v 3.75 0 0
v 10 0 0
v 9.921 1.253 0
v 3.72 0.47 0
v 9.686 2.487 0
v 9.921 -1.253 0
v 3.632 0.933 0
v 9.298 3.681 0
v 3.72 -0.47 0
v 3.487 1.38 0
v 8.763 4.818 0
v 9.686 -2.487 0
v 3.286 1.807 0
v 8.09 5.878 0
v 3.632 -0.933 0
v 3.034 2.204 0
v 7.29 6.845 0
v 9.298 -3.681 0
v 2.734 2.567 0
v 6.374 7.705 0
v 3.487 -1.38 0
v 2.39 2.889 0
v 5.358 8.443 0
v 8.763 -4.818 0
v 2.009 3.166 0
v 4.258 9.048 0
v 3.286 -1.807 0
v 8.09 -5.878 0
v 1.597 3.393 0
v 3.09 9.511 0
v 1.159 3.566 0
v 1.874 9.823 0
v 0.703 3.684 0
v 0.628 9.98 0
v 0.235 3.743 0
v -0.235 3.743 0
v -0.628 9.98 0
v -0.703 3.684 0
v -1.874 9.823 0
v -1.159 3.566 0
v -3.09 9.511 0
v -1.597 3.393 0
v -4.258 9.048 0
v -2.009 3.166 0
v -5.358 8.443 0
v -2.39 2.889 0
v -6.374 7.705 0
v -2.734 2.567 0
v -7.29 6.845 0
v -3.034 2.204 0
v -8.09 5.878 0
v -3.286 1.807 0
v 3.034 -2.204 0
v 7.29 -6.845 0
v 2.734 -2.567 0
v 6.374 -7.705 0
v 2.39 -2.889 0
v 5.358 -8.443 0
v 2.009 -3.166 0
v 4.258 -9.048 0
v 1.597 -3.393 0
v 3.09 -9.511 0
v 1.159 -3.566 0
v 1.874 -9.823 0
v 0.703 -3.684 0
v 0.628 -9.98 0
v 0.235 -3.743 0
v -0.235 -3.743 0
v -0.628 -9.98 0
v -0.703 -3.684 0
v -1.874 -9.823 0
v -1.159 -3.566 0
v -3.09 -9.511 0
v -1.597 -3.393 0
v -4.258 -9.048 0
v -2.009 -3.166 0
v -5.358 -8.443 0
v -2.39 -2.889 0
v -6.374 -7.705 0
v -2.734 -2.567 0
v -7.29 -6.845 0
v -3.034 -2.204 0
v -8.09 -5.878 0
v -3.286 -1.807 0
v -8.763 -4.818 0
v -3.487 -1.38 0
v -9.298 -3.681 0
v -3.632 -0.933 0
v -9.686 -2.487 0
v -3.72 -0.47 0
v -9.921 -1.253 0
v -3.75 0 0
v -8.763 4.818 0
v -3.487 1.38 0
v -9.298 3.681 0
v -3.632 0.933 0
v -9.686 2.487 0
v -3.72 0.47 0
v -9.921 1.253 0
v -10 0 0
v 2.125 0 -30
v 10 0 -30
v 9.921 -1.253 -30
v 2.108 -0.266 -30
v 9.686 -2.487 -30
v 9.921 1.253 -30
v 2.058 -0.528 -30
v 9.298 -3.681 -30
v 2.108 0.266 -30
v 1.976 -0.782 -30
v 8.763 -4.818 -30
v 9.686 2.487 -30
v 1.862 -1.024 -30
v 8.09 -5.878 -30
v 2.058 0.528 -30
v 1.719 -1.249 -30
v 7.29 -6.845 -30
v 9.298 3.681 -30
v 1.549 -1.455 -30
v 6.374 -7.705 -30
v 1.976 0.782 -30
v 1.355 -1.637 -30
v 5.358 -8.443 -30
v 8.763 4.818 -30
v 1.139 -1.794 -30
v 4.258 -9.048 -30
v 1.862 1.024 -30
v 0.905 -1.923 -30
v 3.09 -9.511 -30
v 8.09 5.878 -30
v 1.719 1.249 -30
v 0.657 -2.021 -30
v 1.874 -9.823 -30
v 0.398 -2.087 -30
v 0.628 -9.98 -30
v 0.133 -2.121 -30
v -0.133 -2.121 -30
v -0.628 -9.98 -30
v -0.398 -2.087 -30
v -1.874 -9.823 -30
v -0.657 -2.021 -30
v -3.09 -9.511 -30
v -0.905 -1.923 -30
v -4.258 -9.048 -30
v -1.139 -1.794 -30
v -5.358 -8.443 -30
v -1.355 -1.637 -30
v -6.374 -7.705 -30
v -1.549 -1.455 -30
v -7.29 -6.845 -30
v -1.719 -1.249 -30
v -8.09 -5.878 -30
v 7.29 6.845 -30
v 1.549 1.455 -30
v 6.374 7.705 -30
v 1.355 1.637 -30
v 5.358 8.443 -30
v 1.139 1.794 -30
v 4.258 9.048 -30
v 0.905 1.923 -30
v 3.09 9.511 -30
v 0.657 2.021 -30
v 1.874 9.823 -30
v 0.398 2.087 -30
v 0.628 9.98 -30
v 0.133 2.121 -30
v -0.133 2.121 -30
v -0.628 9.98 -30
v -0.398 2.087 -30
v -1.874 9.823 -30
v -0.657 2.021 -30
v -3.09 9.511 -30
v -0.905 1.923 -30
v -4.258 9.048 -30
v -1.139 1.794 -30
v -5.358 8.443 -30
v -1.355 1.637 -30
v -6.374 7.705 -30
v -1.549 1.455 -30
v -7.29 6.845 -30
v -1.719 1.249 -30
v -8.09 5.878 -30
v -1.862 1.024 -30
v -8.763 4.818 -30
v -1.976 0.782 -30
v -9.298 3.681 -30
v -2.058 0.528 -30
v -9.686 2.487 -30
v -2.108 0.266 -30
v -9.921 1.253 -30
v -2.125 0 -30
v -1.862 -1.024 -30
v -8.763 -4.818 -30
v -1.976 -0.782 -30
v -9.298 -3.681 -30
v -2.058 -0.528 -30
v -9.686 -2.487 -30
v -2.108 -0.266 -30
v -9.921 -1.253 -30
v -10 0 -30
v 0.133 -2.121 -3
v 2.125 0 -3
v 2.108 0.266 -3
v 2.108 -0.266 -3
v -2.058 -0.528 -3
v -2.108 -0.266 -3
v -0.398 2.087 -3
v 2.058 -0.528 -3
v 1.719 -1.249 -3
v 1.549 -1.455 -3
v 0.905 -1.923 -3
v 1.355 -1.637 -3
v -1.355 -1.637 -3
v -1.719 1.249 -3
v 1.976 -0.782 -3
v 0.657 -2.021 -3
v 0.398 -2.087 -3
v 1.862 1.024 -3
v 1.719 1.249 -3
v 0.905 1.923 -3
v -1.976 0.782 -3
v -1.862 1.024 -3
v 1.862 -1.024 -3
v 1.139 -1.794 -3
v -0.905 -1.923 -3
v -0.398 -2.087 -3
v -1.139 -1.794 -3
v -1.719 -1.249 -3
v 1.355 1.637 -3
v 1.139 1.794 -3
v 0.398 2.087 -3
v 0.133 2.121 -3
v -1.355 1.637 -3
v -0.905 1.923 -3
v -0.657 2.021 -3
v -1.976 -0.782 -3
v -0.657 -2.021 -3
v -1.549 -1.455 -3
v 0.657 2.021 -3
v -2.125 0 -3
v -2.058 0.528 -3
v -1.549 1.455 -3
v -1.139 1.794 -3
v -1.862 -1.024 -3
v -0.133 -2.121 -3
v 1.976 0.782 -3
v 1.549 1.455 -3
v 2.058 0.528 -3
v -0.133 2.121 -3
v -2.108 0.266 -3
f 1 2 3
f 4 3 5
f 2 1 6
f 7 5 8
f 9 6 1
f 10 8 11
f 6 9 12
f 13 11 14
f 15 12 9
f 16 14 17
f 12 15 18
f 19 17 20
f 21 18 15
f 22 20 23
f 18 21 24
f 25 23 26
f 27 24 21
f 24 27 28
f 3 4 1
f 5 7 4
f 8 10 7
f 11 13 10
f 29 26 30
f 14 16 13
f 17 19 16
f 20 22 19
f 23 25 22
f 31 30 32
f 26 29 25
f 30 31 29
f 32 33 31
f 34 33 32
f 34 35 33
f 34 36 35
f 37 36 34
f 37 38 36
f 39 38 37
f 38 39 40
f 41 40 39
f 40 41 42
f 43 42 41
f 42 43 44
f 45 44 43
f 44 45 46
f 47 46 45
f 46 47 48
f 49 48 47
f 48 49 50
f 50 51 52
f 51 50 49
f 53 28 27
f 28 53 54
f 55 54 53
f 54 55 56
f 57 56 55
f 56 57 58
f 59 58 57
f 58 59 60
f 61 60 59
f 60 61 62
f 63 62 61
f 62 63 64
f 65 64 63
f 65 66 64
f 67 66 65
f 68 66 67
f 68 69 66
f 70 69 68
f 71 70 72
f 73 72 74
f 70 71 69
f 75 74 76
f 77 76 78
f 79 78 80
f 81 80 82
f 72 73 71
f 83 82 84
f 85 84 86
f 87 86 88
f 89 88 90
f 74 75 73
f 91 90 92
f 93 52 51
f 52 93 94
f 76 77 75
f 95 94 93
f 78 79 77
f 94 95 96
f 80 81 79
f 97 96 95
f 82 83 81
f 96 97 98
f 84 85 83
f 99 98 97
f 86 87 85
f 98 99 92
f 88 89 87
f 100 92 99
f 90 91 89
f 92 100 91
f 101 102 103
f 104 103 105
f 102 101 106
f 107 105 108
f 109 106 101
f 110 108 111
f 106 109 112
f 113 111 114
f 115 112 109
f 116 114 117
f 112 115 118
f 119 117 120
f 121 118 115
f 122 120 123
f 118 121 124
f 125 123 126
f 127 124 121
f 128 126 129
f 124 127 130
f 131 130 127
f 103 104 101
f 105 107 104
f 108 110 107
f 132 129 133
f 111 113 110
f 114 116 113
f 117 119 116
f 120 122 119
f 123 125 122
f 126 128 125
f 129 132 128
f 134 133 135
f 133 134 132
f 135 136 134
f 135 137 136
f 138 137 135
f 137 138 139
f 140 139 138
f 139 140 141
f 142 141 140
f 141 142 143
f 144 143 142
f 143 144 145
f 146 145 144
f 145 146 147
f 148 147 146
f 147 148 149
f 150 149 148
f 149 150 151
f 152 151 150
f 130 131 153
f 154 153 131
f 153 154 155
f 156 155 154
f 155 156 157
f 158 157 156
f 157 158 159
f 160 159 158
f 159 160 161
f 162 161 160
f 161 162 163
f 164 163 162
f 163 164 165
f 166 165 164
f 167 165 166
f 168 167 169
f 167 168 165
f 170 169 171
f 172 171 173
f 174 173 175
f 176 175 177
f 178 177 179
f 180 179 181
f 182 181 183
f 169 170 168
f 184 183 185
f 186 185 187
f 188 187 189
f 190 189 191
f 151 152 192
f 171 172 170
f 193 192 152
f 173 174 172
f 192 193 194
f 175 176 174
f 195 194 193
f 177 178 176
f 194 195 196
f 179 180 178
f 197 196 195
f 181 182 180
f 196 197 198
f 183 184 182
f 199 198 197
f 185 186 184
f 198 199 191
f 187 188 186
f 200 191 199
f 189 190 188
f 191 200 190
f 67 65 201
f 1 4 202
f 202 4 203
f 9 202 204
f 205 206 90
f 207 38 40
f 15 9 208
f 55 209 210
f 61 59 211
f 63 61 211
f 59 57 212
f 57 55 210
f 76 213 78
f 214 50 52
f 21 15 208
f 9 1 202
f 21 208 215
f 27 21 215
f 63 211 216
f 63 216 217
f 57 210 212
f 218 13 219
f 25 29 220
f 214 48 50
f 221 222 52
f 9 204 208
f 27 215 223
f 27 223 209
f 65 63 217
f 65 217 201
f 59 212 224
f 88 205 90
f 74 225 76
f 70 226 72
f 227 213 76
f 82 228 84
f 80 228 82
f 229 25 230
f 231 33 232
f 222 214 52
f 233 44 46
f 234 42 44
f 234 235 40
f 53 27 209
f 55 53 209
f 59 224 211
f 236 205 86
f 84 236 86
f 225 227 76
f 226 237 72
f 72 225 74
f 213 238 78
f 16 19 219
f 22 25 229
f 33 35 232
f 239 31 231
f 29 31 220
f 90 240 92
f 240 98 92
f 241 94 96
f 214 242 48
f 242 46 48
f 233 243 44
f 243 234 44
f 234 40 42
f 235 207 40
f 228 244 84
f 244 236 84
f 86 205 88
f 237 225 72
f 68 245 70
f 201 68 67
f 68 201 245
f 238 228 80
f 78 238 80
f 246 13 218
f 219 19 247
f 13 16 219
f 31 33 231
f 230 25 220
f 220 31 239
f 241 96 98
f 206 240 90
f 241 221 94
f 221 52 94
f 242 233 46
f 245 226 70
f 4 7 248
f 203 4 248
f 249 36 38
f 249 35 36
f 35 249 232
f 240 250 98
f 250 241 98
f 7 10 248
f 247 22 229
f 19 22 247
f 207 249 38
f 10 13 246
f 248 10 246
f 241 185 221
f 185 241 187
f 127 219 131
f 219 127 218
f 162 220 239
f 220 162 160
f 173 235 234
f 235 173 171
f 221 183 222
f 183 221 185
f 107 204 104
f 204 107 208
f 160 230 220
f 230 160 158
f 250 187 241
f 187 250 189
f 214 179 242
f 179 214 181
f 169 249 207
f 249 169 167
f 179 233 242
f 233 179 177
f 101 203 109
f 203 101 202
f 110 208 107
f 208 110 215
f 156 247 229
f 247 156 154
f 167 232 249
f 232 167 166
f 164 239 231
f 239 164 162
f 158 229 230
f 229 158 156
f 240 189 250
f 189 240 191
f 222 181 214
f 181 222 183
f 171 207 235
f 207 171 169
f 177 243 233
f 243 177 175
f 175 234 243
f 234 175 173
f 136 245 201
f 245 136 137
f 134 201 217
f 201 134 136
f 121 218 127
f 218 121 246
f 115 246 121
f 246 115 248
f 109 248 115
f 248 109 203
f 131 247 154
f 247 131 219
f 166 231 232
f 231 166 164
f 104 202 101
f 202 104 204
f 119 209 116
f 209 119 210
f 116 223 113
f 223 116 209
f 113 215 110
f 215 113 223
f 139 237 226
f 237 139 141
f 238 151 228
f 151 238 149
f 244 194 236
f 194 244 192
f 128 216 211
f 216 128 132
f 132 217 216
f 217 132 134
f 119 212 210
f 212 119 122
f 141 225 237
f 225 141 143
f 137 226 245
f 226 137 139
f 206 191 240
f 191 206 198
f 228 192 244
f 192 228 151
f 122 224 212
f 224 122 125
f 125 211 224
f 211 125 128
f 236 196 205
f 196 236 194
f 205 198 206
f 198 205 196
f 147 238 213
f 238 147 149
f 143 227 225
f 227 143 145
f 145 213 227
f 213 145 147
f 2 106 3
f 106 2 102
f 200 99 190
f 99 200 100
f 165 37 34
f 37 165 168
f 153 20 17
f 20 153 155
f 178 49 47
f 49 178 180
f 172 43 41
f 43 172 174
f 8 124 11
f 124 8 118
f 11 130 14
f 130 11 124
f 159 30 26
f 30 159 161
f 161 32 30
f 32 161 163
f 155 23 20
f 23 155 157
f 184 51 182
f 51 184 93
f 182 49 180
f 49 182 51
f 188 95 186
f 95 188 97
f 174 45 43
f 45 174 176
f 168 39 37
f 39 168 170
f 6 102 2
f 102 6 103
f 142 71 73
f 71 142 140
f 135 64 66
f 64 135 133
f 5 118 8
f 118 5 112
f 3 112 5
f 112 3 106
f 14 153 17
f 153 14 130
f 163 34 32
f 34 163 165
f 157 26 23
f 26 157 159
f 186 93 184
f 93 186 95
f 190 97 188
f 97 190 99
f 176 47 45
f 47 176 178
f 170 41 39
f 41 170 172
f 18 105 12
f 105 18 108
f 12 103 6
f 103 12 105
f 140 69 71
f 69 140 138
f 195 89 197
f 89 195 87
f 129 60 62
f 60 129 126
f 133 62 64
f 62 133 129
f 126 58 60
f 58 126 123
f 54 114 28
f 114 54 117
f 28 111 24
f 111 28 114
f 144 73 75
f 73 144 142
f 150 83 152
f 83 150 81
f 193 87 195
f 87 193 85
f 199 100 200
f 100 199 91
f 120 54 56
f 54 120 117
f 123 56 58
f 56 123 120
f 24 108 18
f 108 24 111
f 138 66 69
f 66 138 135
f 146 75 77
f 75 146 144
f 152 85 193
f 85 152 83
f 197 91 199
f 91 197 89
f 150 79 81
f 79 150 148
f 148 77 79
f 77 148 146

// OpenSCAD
$fn = 50;


difference() {
	union() {
		translate(v = [0, 0, -30.0000000000]) {
			cylinder(h = 30, r = 10.0000000000);
		}
		cylinder(h = 0, r = 19.0000000000);
	}
	union() {
		translate(v = [0, 0, 0]) {
			rotate(a = [0, 0, 0]) {
				difference() {
					union() {
						#translate(v = [0, 0, -30.0000000000]) {
							cylinder(h = 30, r = 2.0000000000);
						}
						#translate(v = [0, 0, -3]) {
							cylinder(h = 3, r1 = 2.1250000000, r2 = 3.7500000000);
						}
						#translate(v = [0, 0, -30.0000000000]) {
							cylinder(h = 30, r = 2.1250000000);
						}
						#translate(v = [0, 0, -30.0000000000]) {
							cylinder(h = 30, r = 2.0000000000);
						}
					}
					union();
				}
			}
		}
	}
}
